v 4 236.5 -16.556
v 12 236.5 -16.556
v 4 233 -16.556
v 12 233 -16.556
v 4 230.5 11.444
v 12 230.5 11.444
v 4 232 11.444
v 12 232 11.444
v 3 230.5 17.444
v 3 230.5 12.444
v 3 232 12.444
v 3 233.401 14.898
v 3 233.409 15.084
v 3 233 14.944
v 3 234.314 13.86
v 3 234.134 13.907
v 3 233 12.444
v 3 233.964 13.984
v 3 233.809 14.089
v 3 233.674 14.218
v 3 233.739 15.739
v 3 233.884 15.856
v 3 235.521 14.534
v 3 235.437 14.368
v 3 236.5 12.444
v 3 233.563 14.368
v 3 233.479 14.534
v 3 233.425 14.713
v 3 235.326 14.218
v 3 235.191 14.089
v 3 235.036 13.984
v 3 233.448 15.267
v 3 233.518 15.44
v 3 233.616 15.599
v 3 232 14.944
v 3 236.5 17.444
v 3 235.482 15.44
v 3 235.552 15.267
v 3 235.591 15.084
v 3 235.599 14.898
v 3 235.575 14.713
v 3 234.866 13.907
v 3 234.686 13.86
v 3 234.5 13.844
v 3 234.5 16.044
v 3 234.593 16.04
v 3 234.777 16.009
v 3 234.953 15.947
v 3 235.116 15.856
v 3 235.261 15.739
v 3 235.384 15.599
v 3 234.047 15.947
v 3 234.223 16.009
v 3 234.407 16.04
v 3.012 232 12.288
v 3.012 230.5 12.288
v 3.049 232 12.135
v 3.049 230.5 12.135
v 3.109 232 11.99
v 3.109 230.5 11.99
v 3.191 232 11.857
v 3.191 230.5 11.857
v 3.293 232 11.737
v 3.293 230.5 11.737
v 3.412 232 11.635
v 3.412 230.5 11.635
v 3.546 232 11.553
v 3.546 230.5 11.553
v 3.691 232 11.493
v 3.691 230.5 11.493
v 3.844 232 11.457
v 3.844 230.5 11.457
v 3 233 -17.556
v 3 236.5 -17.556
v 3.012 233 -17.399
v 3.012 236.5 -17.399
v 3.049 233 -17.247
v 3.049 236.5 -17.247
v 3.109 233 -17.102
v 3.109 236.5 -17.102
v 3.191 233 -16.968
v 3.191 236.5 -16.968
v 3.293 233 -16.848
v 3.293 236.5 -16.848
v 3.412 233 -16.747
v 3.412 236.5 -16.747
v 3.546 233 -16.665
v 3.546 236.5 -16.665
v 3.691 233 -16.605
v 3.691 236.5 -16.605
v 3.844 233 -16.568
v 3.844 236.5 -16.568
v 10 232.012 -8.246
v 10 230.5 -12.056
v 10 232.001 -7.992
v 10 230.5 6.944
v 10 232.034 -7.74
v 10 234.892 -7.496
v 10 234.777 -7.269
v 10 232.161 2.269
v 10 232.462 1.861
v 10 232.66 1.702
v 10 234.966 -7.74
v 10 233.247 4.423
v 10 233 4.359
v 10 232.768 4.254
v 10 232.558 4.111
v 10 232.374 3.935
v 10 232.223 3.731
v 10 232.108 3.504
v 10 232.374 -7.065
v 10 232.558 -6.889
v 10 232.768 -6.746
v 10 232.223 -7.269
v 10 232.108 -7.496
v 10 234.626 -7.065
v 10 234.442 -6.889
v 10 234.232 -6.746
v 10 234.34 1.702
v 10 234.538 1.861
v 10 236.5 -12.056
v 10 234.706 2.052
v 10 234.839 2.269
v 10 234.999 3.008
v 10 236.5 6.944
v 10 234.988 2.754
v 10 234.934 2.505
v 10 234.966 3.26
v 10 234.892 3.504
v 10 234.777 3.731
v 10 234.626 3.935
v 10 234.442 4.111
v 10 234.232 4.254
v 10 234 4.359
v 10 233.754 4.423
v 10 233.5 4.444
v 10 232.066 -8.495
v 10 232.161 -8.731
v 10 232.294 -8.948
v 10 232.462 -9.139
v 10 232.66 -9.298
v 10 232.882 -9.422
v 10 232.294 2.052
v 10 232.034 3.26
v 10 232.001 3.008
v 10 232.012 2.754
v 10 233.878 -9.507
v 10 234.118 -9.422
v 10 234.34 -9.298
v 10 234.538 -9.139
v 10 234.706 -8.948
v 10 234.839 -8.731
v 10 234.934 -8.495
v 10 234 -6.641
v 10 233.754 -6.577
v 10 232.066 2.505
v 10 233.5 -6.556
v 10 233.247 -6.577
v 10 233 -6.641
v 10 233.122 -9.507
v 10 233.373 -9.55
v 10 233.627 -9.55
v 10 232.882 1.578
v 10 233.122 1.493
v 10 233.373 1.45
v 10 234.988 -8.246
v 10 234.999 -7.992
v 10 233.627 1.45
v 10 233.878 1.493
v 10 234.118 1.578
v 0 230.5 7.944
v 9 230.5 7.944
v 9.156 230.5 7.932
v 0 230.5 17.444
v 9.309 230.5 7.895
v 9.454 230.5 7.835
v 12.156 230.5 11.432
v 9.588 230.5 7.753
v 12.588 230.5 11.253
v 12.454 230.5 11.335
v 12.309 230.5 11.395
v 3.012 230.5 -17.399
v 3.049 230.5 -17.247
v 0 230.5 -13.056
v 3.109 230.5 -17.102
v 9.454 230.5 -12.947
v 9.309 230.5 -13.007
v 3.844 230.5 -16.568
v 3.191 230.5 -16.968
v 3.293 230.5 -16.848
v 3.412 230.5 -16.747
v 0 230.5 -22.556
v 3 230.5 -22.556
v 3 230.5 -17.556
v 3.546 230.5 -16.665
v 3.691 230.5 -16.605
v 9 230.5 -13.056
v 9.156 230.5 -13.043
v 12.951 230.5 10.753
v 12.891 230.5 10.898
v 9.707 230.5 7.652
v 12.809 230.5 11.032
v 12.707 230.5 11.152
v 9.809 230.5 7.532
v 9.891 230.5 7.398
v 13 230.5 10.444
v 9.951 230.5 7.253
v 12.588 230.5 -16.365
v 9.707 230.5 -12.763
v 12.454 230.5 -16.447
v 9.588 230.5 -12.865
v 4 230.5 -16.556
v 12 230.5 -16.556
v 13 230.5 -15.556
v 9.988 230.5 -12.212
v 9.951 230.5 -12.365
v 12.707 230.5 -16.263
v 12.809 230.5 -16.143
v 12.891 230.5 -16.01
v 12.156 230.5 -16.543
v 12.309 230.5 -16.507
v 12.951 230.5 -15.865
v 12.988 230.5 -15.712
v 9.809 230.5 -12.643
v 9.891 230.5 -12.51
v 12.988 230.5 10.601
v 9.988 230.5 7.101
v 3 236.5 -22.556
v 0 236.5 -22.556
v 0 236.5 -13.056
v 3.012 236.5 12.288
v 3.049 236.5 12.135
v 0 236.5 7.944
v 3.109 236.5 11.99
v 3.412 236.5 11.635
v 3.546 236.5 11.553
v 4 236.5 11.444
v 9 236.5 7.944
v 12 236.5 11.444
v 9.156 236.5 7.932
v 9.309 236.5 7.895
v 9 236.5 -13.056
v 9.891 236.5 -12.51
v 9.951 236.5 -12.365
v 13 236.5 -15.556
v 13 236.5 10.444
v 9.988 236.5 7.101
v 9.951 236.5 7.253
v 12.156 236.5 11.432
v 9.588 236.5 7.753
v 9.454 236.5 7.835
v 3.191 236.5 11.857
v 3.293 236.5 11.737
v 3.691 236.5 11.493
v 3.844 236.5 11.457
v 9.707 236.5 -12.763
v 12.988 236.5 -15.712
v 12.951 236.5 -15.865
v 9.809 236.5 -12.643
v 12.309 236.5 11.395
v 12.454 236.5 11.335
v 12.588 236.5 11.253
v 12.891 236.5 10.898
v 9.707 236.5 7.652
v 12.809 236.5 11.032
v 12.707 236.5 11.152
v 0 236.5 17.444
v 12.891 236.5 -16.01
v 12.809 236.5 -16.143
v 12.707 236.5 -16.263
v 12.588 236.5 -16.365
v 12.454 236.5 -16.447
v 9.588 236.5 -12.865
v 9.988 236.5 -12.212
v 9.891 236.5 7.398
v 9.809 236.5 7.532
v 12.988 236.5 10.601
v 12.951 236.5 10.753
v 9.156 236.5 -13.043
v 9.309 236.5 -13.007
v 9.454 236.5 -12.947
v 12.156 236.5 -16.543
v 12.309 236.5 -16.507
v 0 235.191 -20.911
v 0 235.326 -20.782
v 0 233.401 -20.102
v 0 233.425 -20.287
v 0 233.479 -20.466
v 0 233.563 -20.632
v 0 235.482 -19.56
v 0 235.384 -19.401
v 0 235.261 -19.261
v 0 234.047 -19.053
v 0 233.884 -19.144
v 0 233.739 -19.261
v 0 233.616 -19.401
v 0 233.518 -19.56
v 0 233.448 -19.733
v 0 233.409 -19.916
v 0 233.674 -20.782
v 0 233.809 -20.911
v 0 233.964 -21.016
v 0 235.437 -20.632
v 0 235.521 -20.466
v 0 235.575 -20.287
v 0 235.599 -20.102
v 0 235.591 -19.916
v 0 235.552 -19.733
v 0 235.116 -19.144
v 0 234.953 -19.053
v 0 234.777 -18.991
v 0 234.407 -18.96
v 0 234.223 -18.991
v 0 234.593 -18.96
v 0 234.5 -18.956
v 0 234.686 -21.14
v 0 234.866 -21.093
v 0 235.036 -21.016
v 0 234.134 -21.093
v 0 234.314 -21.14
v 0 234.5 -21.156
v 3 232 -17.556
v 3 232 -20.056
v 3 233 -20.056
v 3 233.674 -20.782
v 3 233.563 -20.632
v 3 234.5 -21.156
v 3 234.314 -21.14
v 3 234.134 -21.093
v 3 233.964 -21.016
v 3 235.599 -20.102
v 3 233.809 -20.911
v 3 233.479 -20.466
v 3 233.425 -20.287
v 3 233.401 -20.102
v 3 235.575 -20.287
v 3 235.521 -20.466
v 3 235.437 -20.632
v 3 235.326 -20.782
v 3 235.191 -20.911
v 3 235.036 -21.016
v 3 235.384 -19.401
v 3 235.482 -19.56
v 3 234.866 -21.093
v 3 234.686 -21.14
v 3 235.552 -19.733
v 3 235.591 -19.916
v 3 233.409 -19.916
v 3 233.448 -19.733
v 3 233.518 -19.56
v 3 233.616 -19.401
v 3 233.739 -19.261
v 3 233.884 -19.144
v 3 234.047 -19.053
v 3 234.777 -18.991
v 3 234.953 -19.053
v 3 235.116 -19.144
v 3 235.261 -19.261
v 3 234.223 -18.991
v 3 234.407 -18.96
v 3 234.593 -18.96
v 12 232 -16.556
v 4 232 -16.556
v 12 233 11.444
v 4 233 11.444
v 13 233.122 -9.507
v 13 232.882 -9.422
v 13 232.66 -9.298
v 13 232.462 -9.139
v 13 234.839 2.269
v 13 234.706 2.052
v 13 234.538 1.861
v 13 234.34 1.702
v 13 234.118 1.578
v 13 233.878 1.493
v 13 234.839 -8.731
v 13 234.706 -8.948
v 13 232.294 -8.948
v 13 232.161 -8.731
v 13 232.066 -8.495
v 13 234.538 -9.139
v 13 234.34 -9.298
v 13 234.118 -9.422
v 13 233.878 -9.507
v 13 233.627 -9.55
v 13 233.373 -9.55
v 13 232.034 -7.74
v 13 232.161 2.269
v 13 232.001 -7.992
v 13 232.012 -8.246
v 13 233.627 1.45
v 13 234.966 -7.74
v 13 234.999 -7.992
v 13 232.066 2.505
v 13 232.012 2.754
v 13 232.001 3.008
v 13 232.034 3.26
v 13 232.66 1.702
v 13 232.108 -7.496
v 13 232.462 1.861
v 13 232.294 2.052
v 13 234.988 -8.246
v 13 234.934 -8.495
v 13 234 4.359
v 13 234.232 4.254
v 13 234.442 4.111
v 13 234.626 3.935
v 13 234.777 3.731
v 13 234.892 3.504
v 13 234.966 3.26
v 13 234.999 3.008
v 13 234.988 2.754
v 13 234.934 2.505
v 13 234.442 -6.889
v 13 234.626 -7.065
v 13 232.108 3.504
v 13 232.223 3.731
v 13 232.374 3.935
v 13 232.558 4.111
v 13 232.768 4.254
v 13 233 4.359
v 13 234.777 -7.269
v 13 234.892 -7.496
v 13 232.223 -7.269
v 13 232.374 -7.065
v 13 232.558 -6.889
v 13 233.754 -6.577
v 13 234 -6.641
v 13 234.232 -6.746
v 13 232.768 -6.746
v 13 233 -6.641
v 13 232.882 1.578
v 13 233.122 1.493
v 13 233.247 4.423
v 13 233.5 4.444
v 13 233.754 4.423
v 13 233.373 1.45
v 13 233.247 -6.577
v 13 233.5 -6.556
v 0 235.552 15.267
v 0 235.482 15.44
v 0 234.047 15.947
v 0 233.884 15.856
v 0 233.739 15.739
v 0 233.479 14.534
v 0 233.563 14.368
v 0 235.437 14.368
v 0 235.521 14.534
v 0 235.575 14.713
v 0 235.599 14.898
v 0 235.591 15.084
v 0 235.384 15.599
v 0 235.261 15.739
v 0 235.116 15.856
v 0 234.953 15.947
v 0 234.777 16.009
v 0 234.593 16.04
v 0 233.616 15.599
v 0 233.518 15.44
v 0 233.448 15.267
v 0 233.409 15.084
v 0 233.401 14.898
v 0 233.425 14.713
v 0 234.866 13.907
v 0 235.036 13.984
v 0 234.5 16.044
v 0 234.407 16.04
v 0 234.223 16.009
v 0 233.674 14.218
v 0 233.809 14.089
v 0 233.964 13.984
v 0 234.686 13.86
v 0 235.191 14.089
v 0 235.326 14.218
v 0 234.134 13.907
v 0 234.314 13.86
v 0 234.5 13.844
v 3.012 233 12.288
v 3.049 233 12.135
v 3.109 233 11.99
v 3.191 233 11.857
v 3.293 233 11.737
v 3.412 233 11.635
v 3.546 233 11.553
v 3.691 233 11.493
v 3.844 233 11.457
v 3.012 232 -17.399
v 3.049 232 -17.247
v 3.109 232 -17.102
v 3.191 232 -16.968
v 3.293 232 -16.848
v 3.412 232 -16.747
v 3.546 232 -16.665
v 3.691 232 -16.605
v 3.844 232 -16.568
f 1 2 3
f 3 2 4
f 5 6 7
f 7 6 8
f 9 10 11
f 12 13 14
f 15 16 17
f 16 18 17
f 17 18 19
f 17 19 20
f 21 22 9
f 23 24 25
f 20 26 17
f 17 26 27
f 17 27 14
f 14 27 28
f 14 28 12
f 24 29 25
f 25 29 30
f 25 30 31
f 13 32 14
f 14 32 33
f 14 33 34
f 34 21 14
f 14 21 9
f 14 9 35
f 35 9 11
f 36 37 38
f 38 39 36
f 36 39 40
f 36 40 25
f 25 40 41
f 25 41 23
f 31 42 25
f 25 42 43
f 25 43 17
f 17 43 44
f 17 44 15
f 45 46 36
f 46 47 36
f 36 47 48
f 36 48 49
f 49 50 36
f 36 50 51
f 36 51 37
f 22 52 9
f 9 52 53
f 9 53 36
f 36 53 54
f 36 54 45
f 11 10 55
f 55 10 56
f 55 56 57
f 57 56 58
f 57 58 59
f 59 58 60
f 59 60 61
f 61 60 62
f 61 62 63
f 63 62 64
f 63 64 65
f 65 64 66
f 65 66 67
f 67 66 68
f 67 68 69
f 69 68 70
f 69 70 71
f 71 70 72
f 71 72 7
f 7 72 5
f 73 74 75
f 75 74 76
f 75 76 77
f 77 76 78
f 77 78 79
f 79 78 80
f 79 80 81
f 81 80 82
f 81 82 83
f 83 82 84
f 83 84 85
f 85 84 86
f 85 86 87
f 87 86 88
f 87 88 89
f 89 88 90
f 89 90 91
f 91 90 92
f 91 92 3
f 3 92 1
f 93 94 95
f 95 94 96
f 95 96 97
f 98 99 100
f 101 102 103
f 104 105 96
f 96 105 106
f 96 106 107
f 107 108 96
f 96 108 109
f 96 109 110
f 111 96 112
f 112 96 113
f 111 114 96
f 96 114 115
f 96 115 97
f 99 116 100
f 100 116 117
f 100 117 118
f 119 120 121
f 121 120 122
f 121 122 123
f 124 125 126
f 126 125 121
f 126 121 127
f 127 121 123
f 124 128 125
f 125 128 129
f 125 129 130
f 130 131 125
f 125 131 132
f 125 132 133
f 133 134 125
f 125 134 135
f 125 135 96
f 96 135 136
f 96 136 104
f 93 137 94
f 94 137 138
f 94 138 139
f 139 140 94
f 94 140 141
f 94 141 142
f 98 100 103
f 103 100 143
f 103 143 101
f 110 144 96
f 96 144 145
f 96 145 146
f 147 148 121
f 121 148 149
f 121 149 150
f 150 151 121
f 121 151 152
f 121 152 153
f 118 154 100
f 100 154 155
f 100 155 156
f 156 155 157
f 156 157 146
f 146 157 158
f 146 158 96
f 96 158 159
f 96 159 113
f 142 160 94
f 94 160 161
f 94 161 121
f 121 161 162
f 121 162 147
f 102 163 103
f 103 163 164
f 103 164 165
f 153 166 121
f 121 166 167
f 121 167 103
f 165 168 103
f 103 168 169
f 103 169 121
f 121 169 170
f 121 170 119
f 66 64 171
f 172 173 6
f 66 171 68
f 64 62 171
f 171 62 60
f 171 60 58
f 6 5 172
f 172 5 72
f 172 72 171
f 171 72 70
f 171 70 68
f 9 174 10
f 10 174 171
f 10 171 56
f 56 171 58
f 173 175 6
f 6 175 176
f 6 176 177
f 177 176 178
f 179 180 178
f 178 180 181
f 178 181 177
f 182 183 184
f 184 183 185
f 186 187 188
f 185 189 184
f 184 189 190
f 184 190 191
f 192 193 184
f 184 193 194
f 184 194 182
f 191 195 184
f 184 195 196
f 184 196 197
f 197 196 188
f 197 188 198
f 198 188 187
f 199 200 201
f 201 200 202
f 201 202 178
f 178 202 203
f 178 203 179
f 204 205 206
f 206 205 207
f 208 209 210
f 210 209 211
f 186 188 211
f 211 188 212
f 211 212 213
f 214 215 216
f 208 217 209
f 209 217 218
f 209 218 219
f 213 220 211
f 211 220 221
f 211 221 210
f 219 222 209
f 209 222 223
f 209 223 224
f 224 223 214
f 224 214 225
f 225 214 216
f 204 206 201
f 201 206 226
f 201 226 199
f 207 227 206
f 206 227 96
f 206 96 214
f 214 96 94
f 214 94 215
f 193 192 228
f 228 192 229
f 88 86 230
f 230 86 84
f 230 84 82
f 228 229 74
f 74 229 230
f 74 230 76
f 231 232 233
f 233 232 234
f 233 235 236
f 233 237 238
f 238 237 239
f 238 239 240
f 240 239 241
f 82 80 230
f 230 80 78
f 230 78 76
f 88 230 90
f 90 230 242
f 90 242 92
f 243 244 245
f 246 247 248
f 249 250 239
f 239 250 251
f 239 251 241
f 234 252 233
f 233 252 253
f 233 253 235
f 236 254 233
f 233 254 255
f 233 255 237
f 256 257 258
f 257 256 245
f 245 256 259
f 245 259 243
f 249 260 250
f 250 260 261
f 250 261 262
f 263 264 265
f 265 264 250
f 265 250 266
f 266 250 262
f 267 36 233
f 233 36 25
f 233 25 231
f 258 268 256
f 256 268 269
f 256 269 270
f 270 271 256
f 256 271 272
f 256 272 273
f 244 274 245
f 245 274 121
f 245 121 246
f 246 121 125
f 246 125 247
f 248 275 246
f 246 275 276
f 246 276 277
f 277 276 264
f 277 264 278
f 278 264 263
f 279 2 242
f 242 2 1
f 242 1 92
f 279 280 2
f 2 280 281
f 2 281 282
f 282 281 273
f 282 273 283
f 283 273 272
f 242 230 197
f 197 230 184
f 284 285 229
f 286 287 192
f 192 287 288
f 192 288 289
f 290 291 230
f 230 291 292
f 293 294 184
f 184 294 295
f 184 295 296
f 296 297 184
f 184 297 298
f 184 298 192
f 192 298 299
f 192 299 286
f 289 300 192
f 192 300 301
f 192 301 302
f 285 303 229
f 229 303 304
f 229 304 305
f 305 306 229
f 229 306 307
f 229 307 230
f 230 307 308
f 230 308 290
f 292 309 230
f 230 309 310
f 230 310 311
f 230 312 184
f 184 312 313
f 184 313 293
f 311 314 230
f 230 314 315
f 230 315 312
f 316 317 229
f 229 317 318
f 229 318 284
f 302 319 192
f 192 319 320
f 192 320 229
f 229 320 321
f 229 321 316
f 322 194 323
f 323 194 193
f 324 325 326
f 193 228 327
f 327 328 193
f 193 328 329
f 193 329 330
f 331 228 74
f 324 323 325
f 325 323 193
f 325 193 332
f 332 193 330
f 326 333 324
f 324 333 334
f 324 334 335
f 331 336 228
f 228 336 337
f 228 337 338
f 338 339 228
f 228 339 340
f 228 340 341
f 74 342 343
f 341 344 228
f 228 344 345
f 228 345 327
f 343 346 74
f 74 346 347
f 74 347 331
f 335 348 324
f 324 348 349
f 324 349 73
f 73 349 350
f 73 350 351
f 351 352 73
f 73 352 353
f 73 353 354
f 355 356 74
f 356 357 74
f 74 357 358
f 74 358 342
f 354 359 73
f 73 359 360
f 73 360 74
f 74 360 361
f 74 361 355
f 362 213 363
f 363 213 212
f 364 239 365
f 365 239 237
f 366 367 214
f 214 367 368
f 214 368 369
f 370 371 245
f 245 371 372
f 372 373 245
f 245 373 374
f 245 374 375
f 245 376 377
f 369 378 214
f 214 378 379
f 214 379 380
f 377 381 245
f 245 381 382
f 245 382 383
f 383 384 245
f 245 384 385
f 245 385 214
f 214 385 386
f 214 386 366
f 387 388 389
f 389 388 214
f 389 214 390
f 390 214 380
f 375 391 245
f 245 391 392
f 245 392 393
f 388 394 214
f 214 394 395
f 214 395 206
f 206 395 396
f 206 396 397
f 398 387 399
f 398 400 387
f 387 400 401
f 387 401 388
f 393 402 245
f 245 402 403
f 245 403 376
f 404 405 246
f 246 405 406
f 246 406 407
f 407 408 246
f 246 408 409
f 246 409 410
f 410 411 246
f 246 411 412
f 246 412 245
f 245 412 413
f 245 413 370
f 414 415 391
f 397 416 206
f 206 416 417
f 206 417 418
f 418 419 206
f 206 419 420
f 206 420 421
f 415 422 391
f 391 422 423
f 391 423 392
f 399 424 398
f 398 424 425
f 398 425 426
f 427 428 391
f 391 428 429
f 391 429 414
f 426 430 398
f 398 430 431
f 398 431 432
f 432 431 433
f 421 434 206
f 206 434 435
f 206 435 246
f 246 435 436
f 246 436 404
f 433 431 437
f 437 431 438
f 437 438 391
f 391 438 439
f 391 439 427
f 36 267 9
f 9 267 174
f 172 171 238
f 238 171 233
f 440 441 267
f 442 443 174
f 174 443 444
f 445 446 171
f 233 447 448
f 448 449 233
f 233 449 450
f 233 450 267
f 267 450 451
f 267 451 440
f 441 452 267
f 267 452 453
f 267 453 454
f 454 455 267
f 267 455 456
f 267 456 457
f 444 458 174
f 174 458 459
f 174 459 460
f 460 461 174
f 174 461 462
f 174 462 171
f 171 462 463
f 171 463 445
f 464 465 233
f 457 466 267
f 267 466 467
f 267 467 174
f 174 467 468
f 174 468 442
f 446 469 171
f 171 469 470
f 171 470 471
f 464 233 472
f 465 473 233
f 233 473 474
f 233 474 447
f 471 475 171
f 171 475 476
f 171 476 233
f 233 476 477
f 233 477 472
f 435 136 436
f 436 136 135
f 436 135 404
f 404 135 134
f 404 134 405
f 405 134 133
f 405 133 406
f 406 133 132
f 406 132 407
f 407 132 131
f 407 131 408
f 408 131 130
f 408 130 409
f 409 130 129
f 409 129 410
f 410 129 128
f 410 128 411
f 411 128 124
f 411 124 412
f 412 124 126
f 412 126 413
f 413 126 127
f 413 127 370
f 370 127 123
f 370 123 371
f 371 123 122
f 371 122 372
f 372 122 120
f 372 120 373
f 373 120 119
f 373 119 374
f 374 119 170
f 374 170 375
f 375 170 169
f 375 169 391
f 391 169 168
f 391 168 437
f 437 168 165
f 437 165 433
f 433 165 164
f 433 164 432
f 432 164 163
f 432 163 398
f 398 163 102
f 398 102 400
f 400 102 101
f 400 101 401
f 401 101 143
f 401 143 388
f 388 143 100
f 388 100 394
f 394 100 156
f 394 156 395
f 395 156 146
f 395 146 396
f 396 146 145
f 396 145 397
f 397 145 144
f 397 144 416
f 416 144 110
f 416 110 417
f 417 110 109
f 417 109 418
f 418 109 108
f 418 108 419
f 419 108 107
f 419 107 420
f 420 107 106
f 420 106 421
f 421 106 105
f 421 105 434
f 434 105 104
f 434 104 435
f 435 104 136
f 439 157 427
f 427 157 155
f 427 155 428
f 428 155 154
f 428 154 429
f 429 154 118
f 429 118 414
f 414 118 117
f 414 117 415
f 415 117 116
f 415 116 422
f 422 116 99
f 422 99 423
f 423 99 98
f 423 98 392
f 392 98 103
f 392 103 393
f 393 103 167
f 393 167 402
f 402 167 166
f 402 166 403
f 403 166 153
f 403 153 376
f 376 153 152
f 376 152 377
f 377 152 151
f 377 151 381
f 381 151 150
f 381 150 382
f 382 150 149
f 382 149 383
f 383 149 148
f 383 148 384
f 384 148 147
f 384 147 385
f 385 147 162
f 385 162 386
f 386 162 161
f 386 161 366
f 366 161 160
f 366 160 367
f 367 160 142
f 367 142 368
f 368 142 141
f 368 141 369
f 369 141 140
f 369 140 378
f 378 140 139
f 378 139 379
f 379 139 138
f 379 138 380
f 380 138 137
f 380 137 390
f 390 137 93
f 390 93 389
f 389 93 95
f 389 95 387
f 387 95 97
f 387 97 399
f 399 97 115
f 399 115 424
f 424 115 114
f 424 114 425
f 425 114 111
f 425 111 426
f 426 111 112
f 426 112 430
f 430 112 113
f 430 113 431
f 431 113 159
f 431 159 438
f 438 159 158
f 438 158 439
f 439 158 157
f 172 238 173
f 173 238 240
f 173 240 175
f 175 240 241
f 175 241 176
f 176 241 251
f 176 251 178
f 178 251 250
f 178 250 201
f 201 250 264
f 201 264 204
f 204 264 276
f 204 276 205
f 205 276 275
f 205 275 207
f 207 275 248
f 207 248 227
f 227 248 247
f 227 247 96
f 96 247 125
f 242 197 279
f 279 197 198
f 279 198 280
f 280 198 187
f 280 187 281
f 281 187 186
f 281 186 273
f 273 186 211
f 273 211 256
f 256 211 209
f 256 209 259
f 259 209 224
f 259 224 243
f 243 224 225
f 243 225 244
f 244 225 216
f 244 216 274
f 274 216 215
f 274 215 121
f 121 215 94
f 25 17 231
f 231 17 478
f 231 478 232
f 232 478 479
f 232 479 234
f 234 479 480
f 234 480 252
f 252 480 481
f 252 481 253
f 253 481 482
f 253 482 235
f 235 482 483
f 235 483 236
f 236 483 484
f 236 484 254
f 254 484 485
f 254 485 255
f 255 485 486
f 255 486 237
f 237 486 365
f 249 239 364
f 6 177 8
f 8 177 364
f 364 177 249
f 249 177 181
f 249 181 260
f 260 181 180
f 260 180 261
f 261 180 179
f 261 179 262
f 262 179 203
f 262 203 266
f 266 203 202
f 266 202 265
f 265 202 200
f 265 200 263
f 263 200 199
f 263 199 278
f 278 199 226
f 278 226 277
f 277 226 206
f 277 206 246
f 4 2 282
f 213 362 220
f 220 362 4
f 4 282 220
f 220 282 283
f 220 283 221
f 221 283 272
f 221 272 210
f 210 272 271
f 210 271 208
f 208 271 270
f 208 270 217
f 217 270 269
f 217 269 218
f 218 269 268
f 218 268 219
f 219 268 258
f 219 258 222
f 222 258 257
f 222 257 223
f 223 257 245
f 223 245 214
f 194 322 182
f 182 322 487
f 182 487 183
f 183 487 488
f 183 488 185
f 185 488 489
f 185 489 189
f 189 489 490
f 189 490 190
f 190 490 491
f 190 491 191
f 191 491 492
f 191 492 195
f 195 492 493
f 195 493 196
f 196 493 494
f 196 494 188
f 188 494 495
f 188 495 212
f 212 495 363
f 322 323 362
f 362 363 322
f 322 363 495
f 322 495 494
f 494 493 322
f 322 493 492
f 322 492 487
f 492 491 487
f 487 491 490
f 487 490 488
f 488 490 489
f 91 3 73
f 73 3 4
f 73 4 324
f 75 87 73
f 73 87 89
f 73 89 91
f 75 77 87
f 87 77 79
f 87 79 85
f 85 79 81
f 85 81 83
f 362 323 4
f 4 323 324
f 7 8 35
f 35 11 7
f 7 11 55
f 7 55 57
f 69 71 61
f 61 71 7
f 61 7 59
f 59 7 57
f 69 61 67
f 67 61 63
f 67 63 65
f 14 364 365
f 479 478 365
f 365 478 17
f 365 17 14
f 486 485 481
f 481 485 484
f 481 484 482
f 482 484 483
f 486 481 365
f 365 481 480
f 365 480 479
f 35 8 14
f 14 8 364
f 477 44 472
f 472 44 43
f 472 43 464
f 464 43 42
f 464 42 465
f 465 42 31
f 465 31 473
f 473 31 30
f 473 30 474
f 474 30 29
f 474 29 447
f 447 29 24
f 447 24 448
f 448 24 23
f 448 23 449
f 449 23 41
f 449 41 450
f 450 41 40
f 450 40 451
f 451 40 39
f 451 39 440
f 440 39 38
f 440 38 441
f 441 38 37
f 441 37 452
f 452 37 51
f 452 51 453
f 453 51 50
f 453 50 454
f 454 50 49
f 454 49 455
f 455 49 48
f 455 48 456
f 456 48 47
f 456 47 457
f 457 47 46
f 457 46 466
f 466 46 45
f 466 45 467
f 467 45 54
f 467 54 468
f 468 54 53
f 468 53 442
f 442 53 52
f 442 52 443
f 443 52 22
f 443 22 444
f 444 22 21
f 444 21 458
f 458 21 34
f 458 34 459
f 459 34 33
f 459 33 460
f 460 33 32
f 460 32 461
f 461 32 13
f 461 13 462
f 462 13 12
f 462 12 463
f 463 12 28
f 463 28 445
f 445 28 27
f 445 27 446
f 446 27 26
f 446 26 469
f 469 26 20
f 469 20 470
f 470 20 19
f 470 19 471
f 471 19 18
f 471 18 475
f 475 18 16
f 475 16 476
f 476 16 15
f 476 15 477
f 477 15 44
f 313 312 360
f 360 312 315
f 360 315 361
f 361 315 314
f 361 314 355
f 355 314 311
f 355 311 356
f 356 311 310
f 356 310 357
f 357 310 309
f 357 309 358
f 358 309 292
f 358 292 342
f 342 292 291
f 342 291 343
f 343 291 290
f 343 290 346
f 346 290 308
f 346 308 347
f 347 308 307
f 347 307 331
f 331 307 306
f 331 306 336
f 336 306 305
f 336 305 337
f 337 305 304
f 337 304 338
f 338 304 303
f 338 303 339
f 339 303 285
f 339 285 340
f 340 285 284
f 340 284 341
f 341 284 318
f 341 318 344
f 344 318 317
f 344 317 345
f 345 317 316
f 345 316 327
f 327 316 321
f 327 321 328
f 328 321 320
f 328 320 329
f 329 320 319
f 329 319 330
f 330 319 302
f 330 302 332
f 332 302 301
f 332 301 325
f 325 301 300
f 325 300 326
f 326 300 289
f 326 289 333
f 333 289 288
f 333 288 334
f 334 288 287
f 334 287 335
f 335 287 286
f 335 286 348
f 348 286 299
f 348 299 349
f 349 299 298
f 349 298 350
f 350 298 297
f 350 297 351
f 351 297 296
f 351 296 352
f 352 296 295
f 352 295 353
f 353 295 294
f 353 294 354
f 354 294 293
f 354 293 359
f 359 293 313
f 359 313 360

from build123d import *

# Parameters (mm, degrees)
SKETCH1_W             = 6
SKETCH1_H             = 9.5
BOSS_EXTRUDE1_DEPTH   = 10
BOSS_EXTRUDE1_2_DEPTH = 10
SKETCH2_W             = 6
SKETCH2_H             = 6
CUT_EXTRUDE1_DEPTH    = 7
SKETCH3_W             = 28
SKETCH3_H             = 6
BOSS_EXTRUDE2_DEPTH   = 3
SKETCH4_R             = 1.5
CUT_EXTRUDE2_DEPTH    = 3
FILLET1_R             = 1
BOSS_EXTRUDE3_DEPTH   = 0.5
SKETCH6_R             = 1.1
CUT_EXTRUDE3_DEPTH    = 3


with BuildPart() as part:
    # Sketch1 → Boss-Extrude1 (new body)
    with BuildSketch(Plane.YZ):
        with Locations((233.5, -17.805567315)):
            Rectangle(SKETCH1_W, SKETCH1_H)
    extrude(amount=BOSS_EXTRUDE1_DEPTH)


with BuildPart() as body_2:
    # Sketch1 → Boss-Extrude1 2 (new body)
    with BuildSketch(Plane.YZ):
        with Locations((233.5, 12.694432685)):
            Rectangle(SKETCH1_W, SKETCH1_H)
    extrude(amount=BOSS_EXTRUDE1_2_DEPTH)


with BuildPart() as cut_extrude1_tool:
    # Sketch2 → Cut-Extrude1 (new body)
    with BuildSketch(Plane(origin=(10, 0, 0), x_dir=(0, 0, -1), z_dir=(1, 0, 0))):
        with Locations((-14.444432685, 233.5)):
            Rectangle(SKETCH2_W, SKETCH2_H)
        with Locations((19.555567315, 233.5)):
            Rectangle(SKETCH2_W, SKETCH2_H)
    extrude(amount=-CUT_EXTRUDE1_DEPTH)


with BuildPart() as part_1:
    add(part.part)

    # Cut-Extrude1: cut by cut_extrude1_tool
    add(cut_extrude1_tool.part, mode=Mode.SUBTRACT)



with BuildPart() as body_2_1:
    add(body_2.part)

    # Cut-Extrude1: cut by cut_extrude1_tool
    add(cut_extrude1_tool.part, mode=Mode.SUBTRACT)


with BuildPart() as part_2:
    add(part_1.part)

    add(body_2_1.part)  # Boss-Extrude2 merges body 2
    # Sketch3 → Boss-Extrude2 (add)
    with BuildSketch(Plane(origin=(10, 0, 0), x_dir=(0, 0, -1), z_dir=(1, 0, 0))):
        with Locations((2.555567315, 233.5)):
            Rectangle(SKETCH3_W, SKETCH3_H)
    extrude(amount=BOSS_EXTRUDE2_DEPTH)

    # Sketch4 → Cut-Extrude2 (cut)
    with BuildSketch(Plane.ZY.offset(-10)):
        with Locations((-8.055567315, 233.5)):
            Circle(SKETCH4_R)
        with Locations((2.944432685, 233.5)):
            Circle(SKETCH4_R)
    extrude(amount=-CUT_EXTRUDE2_DEPTH, mode=Mode.SUBTRACT)

    # Fillet1
    fillet1_edges = [part_2.edges().sort_by_distance(p)[0] for p in [
        (10, 233.5, -13.055567315),
        (3, 233.5, -16.555567315),
        (13, 233.5, 11.444432685),
        (13, 233.5, -16.555567315),
        (10, 233.5, 7.944432685),
        (3, 233.5, 11.444432685),
    ]]
    fillet(fillet1_edges, radius=FILLET1_R)

    # Sketch5 → Boss-Extrude3 (add, symmetric)
    with BuildSketch(Plane(origin=(0, 232.5, 0), x_dir=(-1, 0, 0), z_dir=(0, -1, 0))):
        Polygon((-12, 16.555567315), (-3, 20.055567315), (-3, 16.555567315), align=None)
        Polygon((-12, -11.444432685), (-3, -14.944432685), (-3, -11.444432685), align=None)
    extrude(amount=BOSS_EXTRUDE3_DEPTH, both=True)

    # Sketch6 → Cut-Extrude3 (cut)
    with BuildSketch(Plane(origin=(3, 0, 0), x_dir=(0, 0, -1), z_dir=(1, 0, 0))):
        with Locations((20.055567315, 234.5)):
            Circle(SKETCH6_R)
        with Locations((-14.944432685, 234.5)):
            Circle(SKETCH6_R)
    extrude(amount=-CUT_EXTRUDE3_DEPTH, mode=Mode.SUBTRACT)


solid = part_2.part
